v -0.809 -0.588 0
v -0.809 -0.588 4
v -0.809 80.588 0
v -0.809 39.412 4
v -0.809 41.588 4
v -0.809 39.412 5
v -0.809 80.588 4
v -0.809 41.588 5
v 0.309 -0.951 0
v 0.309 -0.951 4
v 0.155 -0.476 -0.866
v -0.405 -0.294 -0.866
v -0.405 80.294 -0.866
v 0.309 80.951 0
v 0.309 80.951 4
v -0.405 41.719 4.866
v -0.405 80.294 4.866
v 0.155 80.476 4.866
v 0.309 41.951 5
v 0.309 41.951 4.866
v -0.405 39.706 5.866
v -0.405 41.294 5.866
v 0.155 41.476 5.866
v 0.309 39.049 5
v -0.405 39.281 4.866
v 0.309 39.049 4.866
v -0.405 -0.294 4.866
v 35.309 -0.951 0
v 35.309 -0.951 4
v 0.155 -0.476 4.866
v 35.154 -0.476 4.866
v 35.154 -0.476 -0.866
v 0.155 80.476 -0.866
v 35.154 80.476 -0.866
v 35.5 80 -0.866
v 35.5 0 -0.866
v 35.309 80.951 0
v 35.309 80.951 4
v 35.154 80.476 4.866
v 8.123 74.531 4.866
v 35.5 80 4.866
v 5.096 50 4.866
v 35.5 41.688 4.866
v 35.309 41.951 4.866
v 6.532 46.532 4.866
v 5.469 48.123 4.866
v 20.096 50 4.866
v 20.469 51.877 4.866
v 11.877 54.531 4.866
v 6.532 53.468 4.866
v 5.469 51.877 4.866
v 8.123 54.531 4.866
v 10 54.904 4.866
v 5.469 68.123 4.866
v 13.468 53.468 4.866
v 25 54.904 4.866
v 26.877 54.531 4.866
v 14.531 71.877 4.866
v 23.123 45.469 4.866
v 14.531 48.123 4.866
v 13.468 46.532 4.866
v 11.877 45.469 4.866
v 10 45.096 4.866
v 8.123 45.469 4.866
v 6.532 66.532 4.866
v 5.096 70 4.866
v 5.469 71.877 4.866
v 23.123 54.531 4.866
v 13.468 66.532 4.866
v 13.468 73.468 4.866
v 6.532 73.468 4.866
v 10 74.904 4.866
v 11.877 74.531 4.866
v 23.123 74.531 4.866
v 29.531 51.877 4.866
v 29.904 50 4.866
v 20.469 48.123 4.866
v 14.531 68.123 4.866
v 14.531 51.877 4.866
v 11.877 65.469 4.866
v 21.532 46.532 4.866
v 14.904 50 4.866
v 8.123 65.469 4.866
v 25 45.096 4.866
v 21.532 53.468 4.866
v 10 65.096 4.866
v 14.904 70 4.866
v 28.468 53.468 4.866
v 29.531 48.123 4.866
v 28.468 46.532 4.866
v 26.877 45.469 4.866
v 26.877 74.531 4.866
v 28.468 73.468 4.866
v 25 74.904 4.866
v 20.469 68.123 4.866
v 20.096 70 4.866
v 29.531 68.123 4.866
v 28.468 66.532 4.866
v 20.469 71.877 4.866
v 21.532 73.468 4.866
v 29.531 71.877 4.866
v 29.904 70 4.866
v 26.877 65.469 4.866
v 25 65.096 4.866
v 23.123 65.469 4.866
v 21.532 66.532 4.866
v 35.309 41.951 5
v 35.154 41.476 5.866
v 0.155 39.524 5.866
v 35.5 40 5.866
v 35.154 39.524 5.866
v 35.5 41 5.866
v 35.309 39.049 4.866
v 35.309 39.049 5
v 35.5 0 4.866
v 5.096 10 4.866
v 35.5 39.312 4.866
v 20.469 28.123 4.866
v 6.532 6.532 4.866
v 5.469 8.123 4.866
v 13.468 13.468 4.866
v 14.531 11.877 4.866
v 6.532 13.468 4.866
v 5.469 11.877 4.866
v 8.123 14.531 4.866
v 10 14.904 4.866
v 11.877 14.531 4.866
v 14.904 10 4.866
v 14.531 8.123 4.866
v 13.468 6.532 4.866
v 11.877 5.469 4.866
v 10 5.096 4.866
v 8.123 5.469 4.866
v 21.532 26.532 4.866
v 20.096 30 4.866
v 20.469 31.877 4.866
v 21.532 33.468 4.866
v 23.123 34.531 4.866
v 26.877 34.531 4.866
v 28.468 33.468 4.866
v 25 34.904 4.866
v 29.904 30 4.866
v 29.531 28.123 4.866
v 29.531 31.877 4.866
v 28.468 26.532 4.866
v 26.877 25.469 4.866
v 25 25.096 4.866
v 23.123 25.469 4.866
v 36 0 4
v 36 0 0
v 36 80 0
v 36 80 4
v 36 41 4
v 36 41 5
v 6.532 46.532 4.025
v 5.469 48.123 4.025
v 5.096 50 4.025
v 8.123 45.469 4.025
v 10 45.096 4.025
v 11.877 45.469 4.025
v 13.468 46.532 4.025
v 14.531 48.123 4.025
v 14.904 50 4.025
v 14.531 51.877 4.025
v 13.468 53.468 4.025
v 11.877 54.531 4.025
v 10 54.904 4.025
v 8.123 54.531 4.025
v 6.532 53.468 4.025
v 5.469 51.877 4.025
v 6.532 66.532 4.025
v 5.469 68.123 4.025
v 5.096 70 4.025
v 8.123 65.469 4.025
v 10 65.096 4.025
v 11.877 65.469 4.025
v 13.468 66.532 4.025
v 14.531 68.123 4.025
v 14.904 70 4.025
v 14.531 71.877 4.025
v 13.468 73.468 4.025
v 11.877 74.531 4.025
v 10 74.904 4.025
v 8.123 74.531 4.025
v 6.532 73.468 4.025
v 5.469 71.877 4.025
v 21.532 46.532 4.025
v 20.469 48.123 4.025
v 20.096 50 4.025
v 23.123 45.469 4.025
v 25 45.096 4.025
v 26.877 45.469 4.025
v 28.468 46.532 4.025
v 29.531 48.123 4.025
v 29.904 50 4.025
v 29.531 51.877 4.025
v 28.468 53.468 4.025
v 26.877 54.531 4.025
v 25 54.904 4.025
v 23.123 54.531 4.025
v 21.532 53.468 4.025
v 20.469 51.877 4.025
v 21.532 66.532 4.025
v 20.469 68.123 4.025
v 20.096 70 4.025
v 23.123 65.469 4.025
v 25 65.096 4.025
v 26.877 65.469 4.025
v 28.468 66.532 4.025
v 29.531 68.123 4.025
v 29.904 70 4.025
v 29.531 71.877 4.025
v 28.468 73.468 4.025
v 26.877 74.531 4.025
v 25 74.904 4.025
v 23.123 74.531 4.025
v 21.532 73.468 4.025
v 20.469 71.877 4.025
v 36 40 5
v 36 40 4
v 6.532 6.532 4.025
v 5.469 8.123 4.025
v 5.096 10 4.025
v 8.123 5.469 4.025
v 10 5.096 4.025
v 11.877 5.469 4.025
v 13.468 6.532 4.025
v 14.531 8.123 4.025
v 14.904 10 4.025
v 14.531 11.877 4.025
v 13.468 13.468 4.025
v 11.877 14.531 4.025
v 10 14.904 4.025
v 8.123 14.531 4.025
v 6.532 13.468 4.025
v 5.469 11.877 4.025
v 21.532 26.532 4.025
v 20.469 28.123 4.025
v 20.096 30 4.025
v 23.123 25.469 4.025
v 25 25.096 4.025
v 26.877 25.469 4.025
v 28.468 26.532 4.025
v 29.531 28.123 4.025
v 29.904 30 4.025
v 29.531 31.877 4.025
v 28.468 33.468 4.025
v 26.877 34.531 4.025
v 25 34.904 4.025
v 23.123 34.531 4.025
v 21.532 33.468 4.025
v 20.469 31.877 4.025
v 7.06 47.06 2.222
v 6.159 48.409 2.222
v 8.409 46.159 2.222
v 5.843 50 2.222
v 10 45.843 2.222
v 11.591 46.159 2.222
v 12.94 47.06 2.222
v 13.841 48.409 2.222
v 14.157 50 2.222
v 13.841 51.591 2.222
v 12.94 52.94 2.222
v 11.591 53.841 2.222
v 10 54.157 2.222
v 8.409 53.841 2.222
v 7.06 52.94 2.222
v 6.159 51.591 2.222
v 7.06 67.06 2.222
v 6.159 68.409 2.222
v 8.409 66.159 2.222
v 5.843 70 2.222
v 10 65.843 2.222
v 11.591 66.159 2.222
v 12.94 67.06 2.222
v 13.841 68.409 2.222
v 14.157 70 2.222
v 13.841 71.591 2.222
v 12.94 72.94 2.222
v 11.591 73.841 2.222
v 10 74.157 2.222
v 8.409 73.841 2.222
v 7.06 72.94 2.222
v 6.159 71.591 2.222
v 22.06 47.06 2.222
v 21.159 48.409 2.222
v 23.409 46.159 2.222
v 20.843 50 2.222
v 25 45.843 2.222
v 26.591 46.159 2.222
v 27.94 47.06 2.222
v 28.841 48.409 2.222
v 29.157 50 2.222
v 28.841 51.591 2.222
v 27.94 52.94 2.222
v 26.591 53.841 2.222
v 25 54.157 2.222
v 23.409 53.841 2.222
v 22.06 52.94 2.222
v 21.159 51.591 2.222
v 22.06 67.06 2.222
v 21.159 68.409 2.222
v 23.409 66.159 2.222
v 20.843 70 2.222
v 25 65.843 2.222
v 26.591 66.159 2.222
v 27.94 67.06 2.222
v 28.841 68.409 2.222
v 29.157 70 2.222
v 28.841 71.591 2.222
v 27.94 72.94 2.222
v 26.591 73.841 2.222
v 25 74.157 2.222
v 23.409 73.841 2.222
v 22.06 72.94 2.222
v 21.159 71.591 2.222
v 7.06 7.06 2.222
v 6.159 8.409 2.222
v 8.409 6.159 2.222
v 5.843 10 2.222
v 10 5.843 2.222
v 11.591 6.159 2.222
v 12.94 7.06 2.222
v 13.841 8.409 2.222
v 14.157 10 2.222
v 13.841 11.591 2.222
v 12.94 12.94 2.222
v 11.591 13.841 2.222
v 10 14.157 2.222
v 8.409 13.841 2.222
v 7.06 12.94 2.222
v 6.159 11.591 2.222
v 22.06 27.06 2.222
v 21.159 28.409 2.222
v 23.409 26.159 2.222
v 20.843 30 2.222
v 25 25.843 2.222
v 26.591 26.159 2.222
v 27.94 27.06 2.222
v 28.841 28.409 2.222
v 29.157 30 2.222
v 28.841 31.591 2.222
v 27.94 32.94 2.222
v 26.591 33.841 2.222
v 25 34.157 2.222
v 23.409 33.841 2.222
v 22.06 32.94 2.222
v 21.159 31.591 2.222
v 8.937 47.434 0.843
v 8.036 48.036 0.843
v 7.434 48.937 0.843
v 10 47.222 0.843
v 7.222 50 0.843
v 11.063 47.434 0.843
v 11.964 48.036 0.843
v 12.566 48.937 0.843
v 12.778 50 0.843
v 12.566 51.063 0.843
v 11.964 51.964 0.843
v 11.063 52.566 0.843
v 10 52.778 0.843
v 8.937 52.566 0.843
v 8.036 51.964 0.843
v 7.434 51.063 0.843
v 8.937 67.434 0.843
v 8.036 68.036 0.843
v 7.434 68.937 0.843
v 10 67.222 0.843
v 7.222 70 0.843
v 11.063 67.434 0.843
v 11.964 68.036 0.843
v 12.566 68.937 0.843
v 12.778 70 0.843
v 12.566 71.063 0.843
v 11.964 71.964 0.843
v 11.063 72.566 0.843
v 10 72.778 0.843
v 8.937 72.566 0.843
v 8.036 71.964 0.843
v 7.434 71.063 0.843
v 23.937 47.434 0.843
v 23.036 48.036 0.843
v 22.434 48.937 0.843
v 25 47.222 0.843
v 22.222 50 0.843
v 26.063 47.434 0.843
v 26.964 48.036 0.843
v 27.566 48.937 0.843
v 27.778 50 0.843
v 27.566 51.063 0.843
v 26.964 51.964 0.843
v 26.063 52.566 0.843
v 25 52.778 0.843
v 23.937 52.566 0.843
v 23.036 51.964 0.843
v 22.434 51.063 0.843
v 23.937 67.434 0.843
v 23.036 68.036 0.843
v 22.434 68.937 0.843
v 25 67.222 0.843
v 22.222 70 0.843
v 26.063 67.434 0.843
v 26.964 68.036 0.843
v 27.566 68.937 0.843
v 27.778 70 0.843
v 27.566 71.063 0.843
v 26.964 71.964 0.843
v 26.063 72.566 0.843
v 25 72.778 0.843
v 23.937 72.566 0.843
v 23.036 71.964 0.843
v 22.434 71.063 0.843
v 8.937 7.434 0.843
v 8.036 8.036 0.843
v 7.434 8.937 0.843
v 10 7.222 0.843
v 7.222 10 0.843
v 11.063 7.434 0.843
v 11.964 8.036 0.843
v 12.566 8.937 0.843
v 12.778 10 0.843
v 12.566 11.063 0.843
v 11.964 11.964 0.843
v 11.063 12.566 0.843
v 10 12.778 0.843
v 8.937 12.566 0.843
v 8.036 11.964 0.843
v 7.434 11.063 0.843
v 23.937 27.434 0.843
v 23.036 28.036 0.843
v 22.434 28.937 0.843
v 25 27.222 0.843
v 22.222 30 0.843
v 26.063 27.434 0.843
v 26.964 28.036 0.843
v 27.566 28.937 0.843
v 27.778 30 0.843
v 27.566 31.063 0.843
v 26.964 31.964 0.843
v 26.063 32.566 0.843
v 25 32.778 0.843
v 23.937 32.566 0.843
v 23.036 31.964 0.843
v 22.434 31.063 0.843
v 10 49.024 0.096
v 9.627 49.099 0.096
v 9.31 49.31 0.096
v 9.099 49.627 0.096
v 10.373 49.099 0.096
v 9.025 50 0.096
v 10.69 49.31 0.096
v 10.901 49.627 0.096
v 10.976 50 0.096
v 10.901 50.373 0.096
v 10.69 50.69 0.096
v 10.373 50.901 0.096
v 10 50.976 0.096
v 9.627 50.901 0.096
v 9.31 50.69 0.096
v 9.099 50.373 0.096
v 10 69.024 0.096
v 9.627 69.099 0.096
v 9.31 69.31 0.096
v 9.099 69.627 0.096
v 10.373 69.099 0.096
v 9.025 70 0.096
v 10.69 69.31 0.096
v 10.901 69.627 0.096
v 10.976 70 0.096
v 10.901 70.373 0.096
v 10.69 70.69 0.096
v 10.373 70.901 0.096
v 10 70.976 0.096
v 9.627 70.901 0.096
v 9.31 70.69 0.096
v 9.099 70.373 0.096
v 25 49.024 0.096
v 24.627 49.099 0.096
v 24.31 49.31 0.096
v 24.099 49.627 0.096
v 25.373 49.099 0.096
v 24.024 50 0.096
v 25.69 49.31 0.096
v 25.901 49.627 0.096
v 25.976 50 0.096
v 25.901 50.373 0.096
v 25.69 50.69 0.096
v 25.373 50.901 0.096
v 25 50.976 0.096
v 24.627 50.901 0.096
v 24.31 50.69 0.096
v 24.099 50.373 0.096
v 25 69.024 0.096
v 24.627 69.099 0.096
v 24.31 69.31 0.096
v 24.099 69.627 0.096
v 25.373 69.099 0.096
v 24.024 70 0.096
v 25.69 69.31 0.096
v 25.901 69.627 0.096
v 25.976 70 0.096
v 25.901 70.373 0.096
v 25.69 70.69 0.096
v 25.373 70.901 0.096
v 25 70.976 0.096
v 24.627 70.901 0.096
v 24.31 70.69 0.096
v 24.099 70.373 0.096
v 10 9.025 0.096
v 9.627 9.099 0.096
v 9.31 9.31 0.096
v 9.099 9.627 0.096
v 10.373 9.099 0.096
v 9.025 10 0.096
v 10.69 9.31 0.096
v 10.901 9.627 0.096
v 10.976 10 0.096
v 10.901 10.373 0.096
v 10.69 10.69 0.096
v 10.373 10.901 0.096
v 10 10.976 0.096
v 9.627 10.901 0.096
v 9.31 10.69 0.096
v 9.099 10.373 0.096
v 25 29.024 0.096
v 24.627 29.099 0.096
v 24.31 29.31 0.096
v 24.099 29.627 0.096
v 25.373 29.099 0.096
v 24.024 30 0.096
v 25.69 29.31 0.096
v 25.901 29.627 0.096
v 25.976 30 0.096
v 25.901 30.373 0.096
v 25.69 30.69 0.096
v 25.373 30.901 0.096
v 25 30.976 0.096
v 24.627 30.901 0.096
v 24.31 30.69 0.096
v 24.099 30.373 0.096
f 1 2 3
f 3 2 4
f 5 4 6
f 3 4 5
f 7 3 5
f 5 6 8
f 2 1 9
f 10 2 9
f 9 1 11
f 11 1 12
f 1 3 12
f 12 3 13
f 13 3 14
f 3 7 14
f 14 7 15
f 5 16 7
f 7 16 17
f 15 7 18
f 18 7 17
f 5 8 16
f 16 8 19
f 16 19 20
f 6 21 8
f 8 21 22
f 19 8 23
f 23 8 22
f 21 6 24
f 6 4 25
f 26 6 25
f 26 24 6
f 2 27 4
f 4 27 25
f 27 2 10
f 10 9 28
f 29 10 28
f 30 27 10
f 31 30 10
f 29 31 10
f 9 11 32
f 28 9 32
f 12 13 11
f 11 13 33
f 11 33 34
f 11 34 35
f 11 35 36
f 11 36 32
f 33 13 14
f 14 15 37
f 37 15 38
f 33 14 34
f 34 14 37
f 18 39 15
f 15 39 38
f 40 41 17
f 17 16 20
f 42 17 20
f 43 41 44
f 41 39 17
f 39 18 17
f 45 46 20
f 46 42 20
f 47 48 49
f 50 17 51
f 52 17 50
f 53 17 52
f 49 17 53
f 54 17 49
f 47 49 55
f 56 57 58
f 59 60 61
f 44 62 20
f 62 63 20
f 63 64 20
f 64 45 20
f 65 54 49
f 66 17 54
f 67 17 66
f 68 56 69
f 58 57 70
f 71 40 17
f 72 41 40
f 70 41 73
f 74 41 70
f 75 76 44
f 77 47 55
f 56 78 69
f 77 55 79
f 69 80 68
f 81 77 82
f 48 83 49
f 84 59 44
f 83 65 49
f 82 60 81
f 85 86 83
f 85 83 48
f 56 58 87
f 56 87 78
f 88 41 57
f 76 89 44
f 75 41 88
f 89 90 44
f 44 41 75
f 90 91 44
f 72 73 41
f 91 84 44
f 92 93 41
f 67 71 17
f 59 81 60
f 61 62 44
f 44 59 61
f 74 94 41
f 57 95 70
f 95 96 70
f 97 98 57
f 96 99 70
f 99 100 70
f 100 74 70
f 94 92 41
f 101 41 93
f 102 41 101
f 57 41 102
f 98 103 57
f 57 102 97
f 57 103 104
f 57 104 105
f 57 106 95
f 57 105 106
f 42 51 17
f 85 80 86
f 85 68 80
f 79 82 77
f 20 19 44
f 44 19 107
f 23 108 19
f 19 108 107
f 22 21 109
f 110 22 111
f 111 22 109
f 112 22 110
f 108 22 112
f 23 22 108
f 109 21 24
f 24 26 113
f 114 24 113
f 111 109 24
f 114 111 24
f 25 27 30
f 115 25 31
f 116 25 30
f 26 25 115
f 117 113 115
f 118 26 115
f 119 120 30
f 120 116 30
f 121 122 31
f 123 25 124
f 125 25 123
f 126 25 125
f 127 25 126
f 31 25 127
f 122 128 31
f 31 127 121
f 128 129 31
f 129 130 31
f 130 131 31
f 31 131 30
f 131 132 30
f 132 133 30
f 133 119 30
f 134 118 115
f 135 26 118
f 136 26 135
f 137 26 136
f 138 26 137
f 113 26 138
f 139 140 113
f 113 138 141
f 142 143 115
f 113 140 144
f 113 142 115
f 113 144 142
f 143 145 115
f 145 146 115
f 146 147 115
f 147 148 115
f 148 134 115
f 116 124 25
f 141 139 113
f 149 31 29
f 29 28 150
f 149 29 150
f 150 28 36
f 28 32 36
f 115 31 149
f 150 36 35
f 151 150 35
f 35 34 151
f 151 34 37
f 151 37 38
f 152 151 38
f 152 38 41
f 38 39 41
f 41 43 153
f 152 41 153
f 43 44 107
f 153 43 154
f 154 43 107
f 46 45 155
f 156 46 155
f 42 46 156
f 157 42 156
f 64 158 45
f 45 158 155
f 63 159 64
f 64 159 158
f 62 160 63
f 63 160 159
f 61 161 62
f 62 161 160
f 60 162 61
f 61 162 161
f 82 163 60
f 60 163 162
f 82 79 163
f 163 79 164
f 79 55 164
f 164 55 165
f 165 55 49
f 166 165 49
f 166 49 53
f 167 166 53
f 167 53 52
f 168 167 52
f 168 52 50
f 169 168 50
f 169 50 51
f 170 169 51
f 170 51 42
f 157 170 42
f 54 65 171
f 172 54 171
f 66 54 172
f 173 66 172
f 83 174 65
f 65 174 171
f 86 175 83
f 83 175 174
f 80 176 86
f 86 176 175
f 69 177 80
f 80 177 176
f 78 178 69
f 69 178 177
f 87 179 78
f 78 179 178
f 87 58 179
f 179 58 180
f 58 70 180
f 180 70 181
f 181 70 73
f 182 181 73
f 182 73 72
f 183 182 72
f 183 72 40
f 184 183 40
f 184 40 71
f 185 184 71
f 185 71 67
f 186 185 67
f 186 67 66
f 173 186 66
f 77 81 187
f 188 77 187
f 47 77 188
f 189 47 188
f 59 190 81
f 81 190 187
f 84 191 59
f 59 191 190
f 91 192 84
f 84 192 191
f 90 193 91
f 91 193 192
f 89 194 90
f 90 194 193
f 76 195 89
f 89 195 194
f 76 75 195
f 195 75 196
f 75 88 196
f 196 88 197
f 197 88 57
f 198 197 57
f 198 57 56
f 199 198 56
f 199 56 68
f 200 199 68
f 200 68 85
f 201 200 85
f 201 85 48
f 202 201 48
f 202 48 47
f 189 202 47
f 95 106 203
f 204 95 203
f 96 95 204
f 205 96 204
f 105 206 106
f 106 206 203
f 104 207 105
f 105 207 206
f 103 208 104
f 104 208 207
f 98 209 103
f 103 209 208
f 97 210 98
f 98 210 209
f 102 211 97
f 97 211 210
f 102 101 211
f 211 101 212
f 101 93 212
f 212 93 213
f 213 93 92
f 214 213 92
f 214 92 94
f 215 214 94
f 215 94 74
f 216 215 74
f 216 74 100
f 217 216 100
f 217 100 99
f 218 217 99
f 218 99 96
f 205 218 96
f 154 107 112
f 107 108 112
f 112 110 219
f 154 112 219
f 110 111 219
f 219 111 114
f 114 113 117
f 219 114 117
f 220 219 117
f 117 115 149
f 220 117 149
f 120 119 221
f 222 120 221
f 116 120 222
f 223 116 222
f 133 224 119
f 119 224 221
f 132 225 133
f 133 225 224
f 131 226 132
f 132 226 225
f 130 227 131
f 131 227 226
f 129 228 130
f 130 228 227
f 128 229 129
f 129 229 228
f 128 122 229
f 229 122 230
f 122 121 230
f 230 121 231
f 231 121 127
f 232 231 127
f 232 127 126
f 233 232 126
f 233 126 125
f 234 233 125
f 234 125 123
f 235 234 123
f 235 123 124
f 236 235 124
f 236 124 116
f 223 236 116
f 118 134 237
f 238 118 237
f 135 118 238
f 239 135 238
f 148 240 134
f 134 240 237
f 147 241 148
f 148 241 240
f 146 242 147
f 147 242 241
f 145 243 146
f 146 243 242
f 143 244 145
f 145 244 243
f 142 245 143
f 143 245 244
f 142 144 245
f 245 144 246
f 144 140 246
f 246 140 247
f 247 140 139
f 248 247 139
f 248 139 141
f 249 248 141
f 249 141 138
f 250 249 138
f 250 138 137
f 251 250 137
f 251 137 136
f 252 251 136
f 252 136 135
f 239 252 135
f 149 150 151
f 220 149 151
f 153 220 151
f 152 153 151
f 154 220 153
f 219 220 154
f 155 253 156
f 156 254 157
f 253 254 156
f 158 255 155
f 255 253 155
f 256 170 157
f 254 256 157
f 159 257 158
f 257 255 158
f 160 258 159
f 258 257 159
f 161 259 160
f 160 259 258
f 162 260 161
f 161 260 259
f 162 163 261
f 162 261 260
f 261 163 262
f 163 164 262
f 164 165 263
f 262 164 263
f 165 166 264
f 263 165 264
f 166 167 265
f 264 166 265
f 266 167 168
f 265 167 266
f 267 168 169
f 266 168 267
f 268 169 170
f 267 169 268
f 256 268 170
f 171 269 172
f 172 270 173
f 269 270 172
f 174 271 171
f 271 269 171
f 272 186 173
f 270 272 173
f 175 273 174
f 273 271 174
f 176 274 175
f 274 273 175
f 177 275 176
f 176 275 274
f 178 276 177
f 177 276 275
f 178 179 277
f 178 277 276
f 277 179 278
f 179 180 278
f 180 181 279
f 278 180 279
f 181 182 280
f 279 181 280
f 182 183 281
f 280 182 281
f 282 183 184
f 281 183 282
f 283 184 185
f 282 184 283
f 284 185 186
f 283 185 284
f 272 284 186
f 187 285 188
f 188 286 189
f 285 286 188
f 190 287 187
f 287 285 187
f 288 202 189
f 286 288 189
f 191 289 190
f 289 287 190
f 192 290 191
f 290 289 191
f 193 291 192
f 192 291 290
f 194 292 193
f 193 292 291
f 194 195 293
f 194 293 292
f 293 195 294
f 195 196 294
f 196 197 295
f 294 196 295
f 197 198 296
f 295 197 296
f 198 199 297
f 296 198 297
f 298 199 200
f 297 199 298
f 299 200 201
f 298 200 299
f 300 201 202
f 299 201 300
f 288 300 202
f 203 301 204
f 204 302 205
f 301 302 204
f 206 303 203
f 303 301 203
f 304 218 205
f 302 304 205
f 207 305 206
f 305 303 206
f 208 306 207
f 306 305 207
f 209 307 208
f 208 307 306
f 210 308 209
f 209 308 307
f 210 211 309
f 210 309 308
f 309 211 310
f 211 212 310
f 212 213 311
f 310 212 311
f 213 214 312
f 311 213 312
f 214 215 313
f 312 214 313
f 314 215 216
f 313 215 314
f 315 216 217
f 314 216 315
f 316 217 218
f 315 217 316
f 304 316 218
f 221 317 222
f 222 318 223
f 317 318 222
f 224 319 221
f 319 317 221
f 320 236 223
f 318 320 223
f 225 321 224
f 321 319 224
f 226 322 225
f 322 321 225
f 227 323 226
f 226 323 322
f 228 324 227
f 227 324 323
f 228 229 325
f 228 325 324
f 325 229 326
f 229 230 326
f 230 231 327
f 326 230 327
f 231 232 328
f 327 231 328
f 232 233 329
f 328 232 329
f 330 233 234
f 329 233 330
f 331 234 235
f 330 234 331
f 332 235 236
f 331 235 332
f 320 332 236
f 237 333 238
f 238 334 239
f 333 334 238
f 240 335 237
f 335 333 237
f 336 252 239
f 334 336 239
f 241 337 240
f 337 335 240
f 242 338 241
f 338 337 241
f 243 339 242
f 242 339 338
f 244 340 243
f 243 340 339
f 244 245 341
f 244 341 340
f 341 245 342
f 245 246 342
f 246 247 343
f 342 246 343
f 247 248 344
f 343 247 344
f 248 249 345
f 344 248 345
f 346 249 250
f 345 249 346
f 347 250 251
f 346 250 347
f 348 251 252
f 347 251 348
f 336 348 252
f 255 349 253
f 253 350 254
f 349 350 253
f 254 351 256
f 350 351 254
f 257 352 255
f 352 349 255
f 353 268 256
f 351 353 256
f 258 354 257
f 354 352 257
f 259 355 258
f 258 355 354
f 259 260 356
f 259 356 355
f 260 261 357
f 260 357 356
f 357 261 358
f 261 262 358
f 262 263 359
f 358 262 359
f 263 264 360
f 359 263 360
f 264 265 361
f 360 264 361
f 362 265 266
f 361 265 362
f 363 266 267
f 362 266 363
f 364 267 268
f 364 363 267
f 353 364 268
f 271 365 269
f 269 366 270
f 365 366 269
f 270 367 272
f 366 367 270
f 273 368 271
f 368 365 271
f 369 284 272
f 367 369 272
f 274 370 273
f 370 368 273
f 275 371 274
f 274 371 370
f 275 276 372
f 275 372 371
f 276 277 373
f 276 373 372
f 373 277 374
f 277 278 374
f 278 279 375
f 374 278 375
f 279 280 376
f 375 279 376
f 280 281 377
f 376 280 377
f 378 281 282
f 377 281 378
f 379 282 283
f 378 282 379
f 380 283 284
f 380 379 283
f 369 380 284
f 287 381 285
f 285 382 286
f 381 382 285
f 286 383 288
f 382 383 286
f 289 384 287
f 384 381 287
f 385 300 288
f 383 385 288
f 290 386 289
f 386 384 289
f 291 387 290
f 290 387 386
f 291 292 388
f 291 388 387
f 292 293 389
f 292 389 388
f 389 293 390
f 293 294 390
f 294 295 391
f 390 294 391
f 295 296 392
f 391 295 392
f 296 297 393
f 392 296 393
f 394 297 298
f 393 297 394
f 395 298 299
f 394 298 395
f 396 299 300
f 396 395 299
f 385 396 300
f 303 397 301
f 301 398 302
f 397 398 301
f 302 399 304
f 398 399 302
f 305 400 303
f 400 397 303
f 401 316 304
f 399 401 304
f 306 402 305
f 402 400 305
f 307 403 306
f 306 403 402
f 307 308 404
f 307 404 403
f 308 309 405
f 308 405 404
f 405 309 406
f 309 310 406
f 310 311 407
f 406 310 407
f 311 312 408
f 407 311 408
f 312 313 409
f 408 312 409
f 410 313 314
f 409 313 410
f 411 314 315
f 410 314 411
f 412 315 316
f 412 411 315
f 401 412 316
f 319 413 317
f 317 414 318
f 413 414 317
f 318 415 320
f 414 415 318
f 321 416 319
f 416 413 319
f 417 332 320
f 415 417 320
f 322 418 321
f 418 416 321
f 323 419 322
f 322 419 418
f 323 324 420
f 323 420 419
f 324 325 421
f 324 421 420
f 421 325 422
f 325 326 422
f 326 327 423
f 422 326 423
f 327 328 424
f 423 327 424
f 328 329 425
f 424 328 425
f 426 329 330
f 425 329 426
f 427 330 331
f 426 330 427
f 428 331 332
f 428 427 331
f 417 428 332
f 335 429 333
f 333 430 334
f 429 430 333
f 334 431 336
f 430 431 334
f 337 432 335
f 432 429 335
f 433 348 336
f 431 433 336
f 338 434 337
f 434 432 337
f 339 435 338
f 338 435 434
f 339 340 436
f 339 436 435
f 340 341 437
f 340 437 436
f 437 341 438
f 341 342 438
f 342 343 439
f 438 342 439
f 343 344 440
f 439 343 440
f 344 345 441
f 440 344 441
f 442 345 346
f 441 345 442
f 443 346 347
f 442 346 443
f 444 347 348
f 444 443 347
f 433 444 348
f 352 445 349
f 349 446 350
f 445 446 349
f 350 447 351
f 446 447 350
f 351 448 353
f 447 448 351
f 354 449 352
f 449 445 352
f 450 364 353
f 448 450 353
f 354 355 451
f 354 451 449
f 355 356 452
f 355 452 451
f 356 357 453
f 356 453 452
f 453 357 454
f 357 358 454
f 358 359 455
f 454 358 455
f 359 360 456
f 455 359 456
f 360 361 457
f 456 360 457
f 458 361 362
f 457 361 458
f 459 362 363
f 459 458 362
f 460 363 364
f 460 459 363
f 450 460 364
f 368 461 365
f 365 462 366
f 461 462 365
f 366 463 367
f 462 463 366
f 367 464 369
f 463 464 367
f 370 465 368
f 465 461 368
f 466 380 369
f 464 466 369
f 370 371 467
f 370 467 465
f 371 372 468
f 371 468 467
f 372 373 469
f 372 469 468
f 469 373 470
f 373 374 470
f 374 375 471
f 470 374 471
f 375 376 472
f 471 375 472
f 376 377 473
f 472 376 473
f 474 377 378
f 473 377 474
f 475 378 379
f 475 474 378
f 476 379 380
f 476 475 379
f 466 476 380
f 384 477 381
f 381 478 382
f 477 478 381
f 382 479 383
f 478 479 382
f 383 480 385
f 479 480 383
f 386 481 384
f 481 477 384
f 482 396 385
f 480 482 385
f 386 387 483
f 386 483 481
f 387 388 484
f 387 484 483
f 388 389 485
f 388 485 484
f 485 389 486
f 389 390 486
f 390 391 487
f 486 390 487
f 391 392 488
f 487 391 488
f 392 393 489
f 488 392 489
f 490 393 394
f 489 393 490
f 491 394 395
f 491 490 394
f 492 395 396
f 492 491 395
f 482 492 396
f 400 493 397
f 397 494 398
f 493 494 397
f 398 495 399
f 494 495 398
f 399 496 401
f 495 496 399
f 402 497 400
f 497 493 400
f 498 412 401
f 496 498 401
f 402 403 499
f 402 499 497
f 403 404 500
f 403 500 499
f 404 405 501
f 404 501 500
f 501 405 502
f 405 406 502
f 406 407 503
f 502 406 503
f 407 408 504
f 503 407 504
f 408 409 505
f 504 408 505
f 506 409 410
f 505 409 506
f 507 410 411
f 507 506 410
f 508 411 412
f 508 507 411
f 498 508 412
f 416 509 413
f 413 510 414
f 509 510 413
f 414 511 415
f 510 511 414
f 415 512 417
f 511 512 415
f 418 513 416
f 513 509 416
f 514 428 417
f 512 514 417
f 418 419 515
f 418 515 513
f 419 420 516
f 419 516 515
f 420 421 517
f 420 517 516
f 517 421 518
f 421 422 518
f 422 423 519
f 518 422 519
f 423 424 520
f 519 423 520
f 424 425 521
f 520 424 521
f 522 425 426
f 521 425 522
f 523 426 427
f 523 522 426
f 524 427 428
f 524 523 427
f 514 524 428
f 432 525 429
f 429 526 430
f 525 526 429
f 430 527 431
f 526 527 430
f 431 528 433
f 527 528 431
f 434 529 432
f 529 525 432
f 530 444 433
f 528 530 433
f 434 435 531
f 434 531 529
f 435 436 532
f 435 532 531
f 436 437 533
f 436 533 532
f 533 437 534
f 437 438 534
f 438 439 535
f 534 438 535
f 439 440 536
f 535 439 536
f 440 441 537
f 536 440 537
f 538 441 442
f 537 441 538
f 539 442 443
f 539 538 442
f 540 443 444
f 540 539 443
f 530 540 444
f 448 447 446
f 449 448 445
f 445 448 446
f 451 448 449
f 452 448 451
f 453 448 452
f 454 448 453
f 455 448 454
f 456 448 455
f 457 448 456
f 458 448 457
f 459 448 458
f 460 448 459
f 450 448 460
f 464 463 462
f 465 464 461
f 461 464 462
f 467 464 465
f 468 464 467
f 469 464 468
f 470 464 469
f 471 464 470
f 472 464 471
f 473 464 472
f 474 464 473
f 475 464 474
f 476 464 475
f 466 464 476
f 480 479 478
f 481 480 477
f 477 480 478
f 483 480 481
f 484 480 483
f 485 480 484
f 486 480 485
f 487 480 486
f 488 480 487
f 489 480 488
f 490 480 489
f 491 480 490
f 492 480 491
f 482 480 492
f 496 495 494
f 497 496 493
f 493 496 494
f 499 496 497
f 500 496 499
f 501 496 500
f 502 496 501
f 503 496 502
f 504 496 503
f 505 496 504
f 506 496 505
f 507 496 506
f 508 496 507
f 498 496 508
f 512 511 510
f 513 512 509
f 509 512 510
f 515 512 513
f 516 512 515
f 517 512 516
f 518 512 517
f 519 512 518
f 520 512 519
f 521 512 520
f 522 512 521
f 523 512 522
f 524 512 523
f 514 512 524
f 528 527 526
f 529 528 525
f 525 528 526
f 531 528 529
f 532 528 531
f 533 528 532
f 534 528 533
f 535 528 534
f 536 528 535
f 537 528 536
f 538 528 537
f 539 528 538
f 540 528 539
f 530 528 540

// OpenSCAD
// Loguncov Maxim 13.12.13


//$fn=128;


translate([0,40,0])
minkowski()
{cube([35,1,5]);
sphere(1);
}

difference() {

//основа
minkowski()
{cube([35,80,4]);
sphere(1);
}

//отверстия
translate([10,10,5])sphere(5);
translate([25,30,5])sphere(5);


translate([10,70,5])sphere(5);
translate([25,50,5])sphere(5);
translate([25,70,5])sphere(5);
translate([10,50,5])sphere(5);

}
